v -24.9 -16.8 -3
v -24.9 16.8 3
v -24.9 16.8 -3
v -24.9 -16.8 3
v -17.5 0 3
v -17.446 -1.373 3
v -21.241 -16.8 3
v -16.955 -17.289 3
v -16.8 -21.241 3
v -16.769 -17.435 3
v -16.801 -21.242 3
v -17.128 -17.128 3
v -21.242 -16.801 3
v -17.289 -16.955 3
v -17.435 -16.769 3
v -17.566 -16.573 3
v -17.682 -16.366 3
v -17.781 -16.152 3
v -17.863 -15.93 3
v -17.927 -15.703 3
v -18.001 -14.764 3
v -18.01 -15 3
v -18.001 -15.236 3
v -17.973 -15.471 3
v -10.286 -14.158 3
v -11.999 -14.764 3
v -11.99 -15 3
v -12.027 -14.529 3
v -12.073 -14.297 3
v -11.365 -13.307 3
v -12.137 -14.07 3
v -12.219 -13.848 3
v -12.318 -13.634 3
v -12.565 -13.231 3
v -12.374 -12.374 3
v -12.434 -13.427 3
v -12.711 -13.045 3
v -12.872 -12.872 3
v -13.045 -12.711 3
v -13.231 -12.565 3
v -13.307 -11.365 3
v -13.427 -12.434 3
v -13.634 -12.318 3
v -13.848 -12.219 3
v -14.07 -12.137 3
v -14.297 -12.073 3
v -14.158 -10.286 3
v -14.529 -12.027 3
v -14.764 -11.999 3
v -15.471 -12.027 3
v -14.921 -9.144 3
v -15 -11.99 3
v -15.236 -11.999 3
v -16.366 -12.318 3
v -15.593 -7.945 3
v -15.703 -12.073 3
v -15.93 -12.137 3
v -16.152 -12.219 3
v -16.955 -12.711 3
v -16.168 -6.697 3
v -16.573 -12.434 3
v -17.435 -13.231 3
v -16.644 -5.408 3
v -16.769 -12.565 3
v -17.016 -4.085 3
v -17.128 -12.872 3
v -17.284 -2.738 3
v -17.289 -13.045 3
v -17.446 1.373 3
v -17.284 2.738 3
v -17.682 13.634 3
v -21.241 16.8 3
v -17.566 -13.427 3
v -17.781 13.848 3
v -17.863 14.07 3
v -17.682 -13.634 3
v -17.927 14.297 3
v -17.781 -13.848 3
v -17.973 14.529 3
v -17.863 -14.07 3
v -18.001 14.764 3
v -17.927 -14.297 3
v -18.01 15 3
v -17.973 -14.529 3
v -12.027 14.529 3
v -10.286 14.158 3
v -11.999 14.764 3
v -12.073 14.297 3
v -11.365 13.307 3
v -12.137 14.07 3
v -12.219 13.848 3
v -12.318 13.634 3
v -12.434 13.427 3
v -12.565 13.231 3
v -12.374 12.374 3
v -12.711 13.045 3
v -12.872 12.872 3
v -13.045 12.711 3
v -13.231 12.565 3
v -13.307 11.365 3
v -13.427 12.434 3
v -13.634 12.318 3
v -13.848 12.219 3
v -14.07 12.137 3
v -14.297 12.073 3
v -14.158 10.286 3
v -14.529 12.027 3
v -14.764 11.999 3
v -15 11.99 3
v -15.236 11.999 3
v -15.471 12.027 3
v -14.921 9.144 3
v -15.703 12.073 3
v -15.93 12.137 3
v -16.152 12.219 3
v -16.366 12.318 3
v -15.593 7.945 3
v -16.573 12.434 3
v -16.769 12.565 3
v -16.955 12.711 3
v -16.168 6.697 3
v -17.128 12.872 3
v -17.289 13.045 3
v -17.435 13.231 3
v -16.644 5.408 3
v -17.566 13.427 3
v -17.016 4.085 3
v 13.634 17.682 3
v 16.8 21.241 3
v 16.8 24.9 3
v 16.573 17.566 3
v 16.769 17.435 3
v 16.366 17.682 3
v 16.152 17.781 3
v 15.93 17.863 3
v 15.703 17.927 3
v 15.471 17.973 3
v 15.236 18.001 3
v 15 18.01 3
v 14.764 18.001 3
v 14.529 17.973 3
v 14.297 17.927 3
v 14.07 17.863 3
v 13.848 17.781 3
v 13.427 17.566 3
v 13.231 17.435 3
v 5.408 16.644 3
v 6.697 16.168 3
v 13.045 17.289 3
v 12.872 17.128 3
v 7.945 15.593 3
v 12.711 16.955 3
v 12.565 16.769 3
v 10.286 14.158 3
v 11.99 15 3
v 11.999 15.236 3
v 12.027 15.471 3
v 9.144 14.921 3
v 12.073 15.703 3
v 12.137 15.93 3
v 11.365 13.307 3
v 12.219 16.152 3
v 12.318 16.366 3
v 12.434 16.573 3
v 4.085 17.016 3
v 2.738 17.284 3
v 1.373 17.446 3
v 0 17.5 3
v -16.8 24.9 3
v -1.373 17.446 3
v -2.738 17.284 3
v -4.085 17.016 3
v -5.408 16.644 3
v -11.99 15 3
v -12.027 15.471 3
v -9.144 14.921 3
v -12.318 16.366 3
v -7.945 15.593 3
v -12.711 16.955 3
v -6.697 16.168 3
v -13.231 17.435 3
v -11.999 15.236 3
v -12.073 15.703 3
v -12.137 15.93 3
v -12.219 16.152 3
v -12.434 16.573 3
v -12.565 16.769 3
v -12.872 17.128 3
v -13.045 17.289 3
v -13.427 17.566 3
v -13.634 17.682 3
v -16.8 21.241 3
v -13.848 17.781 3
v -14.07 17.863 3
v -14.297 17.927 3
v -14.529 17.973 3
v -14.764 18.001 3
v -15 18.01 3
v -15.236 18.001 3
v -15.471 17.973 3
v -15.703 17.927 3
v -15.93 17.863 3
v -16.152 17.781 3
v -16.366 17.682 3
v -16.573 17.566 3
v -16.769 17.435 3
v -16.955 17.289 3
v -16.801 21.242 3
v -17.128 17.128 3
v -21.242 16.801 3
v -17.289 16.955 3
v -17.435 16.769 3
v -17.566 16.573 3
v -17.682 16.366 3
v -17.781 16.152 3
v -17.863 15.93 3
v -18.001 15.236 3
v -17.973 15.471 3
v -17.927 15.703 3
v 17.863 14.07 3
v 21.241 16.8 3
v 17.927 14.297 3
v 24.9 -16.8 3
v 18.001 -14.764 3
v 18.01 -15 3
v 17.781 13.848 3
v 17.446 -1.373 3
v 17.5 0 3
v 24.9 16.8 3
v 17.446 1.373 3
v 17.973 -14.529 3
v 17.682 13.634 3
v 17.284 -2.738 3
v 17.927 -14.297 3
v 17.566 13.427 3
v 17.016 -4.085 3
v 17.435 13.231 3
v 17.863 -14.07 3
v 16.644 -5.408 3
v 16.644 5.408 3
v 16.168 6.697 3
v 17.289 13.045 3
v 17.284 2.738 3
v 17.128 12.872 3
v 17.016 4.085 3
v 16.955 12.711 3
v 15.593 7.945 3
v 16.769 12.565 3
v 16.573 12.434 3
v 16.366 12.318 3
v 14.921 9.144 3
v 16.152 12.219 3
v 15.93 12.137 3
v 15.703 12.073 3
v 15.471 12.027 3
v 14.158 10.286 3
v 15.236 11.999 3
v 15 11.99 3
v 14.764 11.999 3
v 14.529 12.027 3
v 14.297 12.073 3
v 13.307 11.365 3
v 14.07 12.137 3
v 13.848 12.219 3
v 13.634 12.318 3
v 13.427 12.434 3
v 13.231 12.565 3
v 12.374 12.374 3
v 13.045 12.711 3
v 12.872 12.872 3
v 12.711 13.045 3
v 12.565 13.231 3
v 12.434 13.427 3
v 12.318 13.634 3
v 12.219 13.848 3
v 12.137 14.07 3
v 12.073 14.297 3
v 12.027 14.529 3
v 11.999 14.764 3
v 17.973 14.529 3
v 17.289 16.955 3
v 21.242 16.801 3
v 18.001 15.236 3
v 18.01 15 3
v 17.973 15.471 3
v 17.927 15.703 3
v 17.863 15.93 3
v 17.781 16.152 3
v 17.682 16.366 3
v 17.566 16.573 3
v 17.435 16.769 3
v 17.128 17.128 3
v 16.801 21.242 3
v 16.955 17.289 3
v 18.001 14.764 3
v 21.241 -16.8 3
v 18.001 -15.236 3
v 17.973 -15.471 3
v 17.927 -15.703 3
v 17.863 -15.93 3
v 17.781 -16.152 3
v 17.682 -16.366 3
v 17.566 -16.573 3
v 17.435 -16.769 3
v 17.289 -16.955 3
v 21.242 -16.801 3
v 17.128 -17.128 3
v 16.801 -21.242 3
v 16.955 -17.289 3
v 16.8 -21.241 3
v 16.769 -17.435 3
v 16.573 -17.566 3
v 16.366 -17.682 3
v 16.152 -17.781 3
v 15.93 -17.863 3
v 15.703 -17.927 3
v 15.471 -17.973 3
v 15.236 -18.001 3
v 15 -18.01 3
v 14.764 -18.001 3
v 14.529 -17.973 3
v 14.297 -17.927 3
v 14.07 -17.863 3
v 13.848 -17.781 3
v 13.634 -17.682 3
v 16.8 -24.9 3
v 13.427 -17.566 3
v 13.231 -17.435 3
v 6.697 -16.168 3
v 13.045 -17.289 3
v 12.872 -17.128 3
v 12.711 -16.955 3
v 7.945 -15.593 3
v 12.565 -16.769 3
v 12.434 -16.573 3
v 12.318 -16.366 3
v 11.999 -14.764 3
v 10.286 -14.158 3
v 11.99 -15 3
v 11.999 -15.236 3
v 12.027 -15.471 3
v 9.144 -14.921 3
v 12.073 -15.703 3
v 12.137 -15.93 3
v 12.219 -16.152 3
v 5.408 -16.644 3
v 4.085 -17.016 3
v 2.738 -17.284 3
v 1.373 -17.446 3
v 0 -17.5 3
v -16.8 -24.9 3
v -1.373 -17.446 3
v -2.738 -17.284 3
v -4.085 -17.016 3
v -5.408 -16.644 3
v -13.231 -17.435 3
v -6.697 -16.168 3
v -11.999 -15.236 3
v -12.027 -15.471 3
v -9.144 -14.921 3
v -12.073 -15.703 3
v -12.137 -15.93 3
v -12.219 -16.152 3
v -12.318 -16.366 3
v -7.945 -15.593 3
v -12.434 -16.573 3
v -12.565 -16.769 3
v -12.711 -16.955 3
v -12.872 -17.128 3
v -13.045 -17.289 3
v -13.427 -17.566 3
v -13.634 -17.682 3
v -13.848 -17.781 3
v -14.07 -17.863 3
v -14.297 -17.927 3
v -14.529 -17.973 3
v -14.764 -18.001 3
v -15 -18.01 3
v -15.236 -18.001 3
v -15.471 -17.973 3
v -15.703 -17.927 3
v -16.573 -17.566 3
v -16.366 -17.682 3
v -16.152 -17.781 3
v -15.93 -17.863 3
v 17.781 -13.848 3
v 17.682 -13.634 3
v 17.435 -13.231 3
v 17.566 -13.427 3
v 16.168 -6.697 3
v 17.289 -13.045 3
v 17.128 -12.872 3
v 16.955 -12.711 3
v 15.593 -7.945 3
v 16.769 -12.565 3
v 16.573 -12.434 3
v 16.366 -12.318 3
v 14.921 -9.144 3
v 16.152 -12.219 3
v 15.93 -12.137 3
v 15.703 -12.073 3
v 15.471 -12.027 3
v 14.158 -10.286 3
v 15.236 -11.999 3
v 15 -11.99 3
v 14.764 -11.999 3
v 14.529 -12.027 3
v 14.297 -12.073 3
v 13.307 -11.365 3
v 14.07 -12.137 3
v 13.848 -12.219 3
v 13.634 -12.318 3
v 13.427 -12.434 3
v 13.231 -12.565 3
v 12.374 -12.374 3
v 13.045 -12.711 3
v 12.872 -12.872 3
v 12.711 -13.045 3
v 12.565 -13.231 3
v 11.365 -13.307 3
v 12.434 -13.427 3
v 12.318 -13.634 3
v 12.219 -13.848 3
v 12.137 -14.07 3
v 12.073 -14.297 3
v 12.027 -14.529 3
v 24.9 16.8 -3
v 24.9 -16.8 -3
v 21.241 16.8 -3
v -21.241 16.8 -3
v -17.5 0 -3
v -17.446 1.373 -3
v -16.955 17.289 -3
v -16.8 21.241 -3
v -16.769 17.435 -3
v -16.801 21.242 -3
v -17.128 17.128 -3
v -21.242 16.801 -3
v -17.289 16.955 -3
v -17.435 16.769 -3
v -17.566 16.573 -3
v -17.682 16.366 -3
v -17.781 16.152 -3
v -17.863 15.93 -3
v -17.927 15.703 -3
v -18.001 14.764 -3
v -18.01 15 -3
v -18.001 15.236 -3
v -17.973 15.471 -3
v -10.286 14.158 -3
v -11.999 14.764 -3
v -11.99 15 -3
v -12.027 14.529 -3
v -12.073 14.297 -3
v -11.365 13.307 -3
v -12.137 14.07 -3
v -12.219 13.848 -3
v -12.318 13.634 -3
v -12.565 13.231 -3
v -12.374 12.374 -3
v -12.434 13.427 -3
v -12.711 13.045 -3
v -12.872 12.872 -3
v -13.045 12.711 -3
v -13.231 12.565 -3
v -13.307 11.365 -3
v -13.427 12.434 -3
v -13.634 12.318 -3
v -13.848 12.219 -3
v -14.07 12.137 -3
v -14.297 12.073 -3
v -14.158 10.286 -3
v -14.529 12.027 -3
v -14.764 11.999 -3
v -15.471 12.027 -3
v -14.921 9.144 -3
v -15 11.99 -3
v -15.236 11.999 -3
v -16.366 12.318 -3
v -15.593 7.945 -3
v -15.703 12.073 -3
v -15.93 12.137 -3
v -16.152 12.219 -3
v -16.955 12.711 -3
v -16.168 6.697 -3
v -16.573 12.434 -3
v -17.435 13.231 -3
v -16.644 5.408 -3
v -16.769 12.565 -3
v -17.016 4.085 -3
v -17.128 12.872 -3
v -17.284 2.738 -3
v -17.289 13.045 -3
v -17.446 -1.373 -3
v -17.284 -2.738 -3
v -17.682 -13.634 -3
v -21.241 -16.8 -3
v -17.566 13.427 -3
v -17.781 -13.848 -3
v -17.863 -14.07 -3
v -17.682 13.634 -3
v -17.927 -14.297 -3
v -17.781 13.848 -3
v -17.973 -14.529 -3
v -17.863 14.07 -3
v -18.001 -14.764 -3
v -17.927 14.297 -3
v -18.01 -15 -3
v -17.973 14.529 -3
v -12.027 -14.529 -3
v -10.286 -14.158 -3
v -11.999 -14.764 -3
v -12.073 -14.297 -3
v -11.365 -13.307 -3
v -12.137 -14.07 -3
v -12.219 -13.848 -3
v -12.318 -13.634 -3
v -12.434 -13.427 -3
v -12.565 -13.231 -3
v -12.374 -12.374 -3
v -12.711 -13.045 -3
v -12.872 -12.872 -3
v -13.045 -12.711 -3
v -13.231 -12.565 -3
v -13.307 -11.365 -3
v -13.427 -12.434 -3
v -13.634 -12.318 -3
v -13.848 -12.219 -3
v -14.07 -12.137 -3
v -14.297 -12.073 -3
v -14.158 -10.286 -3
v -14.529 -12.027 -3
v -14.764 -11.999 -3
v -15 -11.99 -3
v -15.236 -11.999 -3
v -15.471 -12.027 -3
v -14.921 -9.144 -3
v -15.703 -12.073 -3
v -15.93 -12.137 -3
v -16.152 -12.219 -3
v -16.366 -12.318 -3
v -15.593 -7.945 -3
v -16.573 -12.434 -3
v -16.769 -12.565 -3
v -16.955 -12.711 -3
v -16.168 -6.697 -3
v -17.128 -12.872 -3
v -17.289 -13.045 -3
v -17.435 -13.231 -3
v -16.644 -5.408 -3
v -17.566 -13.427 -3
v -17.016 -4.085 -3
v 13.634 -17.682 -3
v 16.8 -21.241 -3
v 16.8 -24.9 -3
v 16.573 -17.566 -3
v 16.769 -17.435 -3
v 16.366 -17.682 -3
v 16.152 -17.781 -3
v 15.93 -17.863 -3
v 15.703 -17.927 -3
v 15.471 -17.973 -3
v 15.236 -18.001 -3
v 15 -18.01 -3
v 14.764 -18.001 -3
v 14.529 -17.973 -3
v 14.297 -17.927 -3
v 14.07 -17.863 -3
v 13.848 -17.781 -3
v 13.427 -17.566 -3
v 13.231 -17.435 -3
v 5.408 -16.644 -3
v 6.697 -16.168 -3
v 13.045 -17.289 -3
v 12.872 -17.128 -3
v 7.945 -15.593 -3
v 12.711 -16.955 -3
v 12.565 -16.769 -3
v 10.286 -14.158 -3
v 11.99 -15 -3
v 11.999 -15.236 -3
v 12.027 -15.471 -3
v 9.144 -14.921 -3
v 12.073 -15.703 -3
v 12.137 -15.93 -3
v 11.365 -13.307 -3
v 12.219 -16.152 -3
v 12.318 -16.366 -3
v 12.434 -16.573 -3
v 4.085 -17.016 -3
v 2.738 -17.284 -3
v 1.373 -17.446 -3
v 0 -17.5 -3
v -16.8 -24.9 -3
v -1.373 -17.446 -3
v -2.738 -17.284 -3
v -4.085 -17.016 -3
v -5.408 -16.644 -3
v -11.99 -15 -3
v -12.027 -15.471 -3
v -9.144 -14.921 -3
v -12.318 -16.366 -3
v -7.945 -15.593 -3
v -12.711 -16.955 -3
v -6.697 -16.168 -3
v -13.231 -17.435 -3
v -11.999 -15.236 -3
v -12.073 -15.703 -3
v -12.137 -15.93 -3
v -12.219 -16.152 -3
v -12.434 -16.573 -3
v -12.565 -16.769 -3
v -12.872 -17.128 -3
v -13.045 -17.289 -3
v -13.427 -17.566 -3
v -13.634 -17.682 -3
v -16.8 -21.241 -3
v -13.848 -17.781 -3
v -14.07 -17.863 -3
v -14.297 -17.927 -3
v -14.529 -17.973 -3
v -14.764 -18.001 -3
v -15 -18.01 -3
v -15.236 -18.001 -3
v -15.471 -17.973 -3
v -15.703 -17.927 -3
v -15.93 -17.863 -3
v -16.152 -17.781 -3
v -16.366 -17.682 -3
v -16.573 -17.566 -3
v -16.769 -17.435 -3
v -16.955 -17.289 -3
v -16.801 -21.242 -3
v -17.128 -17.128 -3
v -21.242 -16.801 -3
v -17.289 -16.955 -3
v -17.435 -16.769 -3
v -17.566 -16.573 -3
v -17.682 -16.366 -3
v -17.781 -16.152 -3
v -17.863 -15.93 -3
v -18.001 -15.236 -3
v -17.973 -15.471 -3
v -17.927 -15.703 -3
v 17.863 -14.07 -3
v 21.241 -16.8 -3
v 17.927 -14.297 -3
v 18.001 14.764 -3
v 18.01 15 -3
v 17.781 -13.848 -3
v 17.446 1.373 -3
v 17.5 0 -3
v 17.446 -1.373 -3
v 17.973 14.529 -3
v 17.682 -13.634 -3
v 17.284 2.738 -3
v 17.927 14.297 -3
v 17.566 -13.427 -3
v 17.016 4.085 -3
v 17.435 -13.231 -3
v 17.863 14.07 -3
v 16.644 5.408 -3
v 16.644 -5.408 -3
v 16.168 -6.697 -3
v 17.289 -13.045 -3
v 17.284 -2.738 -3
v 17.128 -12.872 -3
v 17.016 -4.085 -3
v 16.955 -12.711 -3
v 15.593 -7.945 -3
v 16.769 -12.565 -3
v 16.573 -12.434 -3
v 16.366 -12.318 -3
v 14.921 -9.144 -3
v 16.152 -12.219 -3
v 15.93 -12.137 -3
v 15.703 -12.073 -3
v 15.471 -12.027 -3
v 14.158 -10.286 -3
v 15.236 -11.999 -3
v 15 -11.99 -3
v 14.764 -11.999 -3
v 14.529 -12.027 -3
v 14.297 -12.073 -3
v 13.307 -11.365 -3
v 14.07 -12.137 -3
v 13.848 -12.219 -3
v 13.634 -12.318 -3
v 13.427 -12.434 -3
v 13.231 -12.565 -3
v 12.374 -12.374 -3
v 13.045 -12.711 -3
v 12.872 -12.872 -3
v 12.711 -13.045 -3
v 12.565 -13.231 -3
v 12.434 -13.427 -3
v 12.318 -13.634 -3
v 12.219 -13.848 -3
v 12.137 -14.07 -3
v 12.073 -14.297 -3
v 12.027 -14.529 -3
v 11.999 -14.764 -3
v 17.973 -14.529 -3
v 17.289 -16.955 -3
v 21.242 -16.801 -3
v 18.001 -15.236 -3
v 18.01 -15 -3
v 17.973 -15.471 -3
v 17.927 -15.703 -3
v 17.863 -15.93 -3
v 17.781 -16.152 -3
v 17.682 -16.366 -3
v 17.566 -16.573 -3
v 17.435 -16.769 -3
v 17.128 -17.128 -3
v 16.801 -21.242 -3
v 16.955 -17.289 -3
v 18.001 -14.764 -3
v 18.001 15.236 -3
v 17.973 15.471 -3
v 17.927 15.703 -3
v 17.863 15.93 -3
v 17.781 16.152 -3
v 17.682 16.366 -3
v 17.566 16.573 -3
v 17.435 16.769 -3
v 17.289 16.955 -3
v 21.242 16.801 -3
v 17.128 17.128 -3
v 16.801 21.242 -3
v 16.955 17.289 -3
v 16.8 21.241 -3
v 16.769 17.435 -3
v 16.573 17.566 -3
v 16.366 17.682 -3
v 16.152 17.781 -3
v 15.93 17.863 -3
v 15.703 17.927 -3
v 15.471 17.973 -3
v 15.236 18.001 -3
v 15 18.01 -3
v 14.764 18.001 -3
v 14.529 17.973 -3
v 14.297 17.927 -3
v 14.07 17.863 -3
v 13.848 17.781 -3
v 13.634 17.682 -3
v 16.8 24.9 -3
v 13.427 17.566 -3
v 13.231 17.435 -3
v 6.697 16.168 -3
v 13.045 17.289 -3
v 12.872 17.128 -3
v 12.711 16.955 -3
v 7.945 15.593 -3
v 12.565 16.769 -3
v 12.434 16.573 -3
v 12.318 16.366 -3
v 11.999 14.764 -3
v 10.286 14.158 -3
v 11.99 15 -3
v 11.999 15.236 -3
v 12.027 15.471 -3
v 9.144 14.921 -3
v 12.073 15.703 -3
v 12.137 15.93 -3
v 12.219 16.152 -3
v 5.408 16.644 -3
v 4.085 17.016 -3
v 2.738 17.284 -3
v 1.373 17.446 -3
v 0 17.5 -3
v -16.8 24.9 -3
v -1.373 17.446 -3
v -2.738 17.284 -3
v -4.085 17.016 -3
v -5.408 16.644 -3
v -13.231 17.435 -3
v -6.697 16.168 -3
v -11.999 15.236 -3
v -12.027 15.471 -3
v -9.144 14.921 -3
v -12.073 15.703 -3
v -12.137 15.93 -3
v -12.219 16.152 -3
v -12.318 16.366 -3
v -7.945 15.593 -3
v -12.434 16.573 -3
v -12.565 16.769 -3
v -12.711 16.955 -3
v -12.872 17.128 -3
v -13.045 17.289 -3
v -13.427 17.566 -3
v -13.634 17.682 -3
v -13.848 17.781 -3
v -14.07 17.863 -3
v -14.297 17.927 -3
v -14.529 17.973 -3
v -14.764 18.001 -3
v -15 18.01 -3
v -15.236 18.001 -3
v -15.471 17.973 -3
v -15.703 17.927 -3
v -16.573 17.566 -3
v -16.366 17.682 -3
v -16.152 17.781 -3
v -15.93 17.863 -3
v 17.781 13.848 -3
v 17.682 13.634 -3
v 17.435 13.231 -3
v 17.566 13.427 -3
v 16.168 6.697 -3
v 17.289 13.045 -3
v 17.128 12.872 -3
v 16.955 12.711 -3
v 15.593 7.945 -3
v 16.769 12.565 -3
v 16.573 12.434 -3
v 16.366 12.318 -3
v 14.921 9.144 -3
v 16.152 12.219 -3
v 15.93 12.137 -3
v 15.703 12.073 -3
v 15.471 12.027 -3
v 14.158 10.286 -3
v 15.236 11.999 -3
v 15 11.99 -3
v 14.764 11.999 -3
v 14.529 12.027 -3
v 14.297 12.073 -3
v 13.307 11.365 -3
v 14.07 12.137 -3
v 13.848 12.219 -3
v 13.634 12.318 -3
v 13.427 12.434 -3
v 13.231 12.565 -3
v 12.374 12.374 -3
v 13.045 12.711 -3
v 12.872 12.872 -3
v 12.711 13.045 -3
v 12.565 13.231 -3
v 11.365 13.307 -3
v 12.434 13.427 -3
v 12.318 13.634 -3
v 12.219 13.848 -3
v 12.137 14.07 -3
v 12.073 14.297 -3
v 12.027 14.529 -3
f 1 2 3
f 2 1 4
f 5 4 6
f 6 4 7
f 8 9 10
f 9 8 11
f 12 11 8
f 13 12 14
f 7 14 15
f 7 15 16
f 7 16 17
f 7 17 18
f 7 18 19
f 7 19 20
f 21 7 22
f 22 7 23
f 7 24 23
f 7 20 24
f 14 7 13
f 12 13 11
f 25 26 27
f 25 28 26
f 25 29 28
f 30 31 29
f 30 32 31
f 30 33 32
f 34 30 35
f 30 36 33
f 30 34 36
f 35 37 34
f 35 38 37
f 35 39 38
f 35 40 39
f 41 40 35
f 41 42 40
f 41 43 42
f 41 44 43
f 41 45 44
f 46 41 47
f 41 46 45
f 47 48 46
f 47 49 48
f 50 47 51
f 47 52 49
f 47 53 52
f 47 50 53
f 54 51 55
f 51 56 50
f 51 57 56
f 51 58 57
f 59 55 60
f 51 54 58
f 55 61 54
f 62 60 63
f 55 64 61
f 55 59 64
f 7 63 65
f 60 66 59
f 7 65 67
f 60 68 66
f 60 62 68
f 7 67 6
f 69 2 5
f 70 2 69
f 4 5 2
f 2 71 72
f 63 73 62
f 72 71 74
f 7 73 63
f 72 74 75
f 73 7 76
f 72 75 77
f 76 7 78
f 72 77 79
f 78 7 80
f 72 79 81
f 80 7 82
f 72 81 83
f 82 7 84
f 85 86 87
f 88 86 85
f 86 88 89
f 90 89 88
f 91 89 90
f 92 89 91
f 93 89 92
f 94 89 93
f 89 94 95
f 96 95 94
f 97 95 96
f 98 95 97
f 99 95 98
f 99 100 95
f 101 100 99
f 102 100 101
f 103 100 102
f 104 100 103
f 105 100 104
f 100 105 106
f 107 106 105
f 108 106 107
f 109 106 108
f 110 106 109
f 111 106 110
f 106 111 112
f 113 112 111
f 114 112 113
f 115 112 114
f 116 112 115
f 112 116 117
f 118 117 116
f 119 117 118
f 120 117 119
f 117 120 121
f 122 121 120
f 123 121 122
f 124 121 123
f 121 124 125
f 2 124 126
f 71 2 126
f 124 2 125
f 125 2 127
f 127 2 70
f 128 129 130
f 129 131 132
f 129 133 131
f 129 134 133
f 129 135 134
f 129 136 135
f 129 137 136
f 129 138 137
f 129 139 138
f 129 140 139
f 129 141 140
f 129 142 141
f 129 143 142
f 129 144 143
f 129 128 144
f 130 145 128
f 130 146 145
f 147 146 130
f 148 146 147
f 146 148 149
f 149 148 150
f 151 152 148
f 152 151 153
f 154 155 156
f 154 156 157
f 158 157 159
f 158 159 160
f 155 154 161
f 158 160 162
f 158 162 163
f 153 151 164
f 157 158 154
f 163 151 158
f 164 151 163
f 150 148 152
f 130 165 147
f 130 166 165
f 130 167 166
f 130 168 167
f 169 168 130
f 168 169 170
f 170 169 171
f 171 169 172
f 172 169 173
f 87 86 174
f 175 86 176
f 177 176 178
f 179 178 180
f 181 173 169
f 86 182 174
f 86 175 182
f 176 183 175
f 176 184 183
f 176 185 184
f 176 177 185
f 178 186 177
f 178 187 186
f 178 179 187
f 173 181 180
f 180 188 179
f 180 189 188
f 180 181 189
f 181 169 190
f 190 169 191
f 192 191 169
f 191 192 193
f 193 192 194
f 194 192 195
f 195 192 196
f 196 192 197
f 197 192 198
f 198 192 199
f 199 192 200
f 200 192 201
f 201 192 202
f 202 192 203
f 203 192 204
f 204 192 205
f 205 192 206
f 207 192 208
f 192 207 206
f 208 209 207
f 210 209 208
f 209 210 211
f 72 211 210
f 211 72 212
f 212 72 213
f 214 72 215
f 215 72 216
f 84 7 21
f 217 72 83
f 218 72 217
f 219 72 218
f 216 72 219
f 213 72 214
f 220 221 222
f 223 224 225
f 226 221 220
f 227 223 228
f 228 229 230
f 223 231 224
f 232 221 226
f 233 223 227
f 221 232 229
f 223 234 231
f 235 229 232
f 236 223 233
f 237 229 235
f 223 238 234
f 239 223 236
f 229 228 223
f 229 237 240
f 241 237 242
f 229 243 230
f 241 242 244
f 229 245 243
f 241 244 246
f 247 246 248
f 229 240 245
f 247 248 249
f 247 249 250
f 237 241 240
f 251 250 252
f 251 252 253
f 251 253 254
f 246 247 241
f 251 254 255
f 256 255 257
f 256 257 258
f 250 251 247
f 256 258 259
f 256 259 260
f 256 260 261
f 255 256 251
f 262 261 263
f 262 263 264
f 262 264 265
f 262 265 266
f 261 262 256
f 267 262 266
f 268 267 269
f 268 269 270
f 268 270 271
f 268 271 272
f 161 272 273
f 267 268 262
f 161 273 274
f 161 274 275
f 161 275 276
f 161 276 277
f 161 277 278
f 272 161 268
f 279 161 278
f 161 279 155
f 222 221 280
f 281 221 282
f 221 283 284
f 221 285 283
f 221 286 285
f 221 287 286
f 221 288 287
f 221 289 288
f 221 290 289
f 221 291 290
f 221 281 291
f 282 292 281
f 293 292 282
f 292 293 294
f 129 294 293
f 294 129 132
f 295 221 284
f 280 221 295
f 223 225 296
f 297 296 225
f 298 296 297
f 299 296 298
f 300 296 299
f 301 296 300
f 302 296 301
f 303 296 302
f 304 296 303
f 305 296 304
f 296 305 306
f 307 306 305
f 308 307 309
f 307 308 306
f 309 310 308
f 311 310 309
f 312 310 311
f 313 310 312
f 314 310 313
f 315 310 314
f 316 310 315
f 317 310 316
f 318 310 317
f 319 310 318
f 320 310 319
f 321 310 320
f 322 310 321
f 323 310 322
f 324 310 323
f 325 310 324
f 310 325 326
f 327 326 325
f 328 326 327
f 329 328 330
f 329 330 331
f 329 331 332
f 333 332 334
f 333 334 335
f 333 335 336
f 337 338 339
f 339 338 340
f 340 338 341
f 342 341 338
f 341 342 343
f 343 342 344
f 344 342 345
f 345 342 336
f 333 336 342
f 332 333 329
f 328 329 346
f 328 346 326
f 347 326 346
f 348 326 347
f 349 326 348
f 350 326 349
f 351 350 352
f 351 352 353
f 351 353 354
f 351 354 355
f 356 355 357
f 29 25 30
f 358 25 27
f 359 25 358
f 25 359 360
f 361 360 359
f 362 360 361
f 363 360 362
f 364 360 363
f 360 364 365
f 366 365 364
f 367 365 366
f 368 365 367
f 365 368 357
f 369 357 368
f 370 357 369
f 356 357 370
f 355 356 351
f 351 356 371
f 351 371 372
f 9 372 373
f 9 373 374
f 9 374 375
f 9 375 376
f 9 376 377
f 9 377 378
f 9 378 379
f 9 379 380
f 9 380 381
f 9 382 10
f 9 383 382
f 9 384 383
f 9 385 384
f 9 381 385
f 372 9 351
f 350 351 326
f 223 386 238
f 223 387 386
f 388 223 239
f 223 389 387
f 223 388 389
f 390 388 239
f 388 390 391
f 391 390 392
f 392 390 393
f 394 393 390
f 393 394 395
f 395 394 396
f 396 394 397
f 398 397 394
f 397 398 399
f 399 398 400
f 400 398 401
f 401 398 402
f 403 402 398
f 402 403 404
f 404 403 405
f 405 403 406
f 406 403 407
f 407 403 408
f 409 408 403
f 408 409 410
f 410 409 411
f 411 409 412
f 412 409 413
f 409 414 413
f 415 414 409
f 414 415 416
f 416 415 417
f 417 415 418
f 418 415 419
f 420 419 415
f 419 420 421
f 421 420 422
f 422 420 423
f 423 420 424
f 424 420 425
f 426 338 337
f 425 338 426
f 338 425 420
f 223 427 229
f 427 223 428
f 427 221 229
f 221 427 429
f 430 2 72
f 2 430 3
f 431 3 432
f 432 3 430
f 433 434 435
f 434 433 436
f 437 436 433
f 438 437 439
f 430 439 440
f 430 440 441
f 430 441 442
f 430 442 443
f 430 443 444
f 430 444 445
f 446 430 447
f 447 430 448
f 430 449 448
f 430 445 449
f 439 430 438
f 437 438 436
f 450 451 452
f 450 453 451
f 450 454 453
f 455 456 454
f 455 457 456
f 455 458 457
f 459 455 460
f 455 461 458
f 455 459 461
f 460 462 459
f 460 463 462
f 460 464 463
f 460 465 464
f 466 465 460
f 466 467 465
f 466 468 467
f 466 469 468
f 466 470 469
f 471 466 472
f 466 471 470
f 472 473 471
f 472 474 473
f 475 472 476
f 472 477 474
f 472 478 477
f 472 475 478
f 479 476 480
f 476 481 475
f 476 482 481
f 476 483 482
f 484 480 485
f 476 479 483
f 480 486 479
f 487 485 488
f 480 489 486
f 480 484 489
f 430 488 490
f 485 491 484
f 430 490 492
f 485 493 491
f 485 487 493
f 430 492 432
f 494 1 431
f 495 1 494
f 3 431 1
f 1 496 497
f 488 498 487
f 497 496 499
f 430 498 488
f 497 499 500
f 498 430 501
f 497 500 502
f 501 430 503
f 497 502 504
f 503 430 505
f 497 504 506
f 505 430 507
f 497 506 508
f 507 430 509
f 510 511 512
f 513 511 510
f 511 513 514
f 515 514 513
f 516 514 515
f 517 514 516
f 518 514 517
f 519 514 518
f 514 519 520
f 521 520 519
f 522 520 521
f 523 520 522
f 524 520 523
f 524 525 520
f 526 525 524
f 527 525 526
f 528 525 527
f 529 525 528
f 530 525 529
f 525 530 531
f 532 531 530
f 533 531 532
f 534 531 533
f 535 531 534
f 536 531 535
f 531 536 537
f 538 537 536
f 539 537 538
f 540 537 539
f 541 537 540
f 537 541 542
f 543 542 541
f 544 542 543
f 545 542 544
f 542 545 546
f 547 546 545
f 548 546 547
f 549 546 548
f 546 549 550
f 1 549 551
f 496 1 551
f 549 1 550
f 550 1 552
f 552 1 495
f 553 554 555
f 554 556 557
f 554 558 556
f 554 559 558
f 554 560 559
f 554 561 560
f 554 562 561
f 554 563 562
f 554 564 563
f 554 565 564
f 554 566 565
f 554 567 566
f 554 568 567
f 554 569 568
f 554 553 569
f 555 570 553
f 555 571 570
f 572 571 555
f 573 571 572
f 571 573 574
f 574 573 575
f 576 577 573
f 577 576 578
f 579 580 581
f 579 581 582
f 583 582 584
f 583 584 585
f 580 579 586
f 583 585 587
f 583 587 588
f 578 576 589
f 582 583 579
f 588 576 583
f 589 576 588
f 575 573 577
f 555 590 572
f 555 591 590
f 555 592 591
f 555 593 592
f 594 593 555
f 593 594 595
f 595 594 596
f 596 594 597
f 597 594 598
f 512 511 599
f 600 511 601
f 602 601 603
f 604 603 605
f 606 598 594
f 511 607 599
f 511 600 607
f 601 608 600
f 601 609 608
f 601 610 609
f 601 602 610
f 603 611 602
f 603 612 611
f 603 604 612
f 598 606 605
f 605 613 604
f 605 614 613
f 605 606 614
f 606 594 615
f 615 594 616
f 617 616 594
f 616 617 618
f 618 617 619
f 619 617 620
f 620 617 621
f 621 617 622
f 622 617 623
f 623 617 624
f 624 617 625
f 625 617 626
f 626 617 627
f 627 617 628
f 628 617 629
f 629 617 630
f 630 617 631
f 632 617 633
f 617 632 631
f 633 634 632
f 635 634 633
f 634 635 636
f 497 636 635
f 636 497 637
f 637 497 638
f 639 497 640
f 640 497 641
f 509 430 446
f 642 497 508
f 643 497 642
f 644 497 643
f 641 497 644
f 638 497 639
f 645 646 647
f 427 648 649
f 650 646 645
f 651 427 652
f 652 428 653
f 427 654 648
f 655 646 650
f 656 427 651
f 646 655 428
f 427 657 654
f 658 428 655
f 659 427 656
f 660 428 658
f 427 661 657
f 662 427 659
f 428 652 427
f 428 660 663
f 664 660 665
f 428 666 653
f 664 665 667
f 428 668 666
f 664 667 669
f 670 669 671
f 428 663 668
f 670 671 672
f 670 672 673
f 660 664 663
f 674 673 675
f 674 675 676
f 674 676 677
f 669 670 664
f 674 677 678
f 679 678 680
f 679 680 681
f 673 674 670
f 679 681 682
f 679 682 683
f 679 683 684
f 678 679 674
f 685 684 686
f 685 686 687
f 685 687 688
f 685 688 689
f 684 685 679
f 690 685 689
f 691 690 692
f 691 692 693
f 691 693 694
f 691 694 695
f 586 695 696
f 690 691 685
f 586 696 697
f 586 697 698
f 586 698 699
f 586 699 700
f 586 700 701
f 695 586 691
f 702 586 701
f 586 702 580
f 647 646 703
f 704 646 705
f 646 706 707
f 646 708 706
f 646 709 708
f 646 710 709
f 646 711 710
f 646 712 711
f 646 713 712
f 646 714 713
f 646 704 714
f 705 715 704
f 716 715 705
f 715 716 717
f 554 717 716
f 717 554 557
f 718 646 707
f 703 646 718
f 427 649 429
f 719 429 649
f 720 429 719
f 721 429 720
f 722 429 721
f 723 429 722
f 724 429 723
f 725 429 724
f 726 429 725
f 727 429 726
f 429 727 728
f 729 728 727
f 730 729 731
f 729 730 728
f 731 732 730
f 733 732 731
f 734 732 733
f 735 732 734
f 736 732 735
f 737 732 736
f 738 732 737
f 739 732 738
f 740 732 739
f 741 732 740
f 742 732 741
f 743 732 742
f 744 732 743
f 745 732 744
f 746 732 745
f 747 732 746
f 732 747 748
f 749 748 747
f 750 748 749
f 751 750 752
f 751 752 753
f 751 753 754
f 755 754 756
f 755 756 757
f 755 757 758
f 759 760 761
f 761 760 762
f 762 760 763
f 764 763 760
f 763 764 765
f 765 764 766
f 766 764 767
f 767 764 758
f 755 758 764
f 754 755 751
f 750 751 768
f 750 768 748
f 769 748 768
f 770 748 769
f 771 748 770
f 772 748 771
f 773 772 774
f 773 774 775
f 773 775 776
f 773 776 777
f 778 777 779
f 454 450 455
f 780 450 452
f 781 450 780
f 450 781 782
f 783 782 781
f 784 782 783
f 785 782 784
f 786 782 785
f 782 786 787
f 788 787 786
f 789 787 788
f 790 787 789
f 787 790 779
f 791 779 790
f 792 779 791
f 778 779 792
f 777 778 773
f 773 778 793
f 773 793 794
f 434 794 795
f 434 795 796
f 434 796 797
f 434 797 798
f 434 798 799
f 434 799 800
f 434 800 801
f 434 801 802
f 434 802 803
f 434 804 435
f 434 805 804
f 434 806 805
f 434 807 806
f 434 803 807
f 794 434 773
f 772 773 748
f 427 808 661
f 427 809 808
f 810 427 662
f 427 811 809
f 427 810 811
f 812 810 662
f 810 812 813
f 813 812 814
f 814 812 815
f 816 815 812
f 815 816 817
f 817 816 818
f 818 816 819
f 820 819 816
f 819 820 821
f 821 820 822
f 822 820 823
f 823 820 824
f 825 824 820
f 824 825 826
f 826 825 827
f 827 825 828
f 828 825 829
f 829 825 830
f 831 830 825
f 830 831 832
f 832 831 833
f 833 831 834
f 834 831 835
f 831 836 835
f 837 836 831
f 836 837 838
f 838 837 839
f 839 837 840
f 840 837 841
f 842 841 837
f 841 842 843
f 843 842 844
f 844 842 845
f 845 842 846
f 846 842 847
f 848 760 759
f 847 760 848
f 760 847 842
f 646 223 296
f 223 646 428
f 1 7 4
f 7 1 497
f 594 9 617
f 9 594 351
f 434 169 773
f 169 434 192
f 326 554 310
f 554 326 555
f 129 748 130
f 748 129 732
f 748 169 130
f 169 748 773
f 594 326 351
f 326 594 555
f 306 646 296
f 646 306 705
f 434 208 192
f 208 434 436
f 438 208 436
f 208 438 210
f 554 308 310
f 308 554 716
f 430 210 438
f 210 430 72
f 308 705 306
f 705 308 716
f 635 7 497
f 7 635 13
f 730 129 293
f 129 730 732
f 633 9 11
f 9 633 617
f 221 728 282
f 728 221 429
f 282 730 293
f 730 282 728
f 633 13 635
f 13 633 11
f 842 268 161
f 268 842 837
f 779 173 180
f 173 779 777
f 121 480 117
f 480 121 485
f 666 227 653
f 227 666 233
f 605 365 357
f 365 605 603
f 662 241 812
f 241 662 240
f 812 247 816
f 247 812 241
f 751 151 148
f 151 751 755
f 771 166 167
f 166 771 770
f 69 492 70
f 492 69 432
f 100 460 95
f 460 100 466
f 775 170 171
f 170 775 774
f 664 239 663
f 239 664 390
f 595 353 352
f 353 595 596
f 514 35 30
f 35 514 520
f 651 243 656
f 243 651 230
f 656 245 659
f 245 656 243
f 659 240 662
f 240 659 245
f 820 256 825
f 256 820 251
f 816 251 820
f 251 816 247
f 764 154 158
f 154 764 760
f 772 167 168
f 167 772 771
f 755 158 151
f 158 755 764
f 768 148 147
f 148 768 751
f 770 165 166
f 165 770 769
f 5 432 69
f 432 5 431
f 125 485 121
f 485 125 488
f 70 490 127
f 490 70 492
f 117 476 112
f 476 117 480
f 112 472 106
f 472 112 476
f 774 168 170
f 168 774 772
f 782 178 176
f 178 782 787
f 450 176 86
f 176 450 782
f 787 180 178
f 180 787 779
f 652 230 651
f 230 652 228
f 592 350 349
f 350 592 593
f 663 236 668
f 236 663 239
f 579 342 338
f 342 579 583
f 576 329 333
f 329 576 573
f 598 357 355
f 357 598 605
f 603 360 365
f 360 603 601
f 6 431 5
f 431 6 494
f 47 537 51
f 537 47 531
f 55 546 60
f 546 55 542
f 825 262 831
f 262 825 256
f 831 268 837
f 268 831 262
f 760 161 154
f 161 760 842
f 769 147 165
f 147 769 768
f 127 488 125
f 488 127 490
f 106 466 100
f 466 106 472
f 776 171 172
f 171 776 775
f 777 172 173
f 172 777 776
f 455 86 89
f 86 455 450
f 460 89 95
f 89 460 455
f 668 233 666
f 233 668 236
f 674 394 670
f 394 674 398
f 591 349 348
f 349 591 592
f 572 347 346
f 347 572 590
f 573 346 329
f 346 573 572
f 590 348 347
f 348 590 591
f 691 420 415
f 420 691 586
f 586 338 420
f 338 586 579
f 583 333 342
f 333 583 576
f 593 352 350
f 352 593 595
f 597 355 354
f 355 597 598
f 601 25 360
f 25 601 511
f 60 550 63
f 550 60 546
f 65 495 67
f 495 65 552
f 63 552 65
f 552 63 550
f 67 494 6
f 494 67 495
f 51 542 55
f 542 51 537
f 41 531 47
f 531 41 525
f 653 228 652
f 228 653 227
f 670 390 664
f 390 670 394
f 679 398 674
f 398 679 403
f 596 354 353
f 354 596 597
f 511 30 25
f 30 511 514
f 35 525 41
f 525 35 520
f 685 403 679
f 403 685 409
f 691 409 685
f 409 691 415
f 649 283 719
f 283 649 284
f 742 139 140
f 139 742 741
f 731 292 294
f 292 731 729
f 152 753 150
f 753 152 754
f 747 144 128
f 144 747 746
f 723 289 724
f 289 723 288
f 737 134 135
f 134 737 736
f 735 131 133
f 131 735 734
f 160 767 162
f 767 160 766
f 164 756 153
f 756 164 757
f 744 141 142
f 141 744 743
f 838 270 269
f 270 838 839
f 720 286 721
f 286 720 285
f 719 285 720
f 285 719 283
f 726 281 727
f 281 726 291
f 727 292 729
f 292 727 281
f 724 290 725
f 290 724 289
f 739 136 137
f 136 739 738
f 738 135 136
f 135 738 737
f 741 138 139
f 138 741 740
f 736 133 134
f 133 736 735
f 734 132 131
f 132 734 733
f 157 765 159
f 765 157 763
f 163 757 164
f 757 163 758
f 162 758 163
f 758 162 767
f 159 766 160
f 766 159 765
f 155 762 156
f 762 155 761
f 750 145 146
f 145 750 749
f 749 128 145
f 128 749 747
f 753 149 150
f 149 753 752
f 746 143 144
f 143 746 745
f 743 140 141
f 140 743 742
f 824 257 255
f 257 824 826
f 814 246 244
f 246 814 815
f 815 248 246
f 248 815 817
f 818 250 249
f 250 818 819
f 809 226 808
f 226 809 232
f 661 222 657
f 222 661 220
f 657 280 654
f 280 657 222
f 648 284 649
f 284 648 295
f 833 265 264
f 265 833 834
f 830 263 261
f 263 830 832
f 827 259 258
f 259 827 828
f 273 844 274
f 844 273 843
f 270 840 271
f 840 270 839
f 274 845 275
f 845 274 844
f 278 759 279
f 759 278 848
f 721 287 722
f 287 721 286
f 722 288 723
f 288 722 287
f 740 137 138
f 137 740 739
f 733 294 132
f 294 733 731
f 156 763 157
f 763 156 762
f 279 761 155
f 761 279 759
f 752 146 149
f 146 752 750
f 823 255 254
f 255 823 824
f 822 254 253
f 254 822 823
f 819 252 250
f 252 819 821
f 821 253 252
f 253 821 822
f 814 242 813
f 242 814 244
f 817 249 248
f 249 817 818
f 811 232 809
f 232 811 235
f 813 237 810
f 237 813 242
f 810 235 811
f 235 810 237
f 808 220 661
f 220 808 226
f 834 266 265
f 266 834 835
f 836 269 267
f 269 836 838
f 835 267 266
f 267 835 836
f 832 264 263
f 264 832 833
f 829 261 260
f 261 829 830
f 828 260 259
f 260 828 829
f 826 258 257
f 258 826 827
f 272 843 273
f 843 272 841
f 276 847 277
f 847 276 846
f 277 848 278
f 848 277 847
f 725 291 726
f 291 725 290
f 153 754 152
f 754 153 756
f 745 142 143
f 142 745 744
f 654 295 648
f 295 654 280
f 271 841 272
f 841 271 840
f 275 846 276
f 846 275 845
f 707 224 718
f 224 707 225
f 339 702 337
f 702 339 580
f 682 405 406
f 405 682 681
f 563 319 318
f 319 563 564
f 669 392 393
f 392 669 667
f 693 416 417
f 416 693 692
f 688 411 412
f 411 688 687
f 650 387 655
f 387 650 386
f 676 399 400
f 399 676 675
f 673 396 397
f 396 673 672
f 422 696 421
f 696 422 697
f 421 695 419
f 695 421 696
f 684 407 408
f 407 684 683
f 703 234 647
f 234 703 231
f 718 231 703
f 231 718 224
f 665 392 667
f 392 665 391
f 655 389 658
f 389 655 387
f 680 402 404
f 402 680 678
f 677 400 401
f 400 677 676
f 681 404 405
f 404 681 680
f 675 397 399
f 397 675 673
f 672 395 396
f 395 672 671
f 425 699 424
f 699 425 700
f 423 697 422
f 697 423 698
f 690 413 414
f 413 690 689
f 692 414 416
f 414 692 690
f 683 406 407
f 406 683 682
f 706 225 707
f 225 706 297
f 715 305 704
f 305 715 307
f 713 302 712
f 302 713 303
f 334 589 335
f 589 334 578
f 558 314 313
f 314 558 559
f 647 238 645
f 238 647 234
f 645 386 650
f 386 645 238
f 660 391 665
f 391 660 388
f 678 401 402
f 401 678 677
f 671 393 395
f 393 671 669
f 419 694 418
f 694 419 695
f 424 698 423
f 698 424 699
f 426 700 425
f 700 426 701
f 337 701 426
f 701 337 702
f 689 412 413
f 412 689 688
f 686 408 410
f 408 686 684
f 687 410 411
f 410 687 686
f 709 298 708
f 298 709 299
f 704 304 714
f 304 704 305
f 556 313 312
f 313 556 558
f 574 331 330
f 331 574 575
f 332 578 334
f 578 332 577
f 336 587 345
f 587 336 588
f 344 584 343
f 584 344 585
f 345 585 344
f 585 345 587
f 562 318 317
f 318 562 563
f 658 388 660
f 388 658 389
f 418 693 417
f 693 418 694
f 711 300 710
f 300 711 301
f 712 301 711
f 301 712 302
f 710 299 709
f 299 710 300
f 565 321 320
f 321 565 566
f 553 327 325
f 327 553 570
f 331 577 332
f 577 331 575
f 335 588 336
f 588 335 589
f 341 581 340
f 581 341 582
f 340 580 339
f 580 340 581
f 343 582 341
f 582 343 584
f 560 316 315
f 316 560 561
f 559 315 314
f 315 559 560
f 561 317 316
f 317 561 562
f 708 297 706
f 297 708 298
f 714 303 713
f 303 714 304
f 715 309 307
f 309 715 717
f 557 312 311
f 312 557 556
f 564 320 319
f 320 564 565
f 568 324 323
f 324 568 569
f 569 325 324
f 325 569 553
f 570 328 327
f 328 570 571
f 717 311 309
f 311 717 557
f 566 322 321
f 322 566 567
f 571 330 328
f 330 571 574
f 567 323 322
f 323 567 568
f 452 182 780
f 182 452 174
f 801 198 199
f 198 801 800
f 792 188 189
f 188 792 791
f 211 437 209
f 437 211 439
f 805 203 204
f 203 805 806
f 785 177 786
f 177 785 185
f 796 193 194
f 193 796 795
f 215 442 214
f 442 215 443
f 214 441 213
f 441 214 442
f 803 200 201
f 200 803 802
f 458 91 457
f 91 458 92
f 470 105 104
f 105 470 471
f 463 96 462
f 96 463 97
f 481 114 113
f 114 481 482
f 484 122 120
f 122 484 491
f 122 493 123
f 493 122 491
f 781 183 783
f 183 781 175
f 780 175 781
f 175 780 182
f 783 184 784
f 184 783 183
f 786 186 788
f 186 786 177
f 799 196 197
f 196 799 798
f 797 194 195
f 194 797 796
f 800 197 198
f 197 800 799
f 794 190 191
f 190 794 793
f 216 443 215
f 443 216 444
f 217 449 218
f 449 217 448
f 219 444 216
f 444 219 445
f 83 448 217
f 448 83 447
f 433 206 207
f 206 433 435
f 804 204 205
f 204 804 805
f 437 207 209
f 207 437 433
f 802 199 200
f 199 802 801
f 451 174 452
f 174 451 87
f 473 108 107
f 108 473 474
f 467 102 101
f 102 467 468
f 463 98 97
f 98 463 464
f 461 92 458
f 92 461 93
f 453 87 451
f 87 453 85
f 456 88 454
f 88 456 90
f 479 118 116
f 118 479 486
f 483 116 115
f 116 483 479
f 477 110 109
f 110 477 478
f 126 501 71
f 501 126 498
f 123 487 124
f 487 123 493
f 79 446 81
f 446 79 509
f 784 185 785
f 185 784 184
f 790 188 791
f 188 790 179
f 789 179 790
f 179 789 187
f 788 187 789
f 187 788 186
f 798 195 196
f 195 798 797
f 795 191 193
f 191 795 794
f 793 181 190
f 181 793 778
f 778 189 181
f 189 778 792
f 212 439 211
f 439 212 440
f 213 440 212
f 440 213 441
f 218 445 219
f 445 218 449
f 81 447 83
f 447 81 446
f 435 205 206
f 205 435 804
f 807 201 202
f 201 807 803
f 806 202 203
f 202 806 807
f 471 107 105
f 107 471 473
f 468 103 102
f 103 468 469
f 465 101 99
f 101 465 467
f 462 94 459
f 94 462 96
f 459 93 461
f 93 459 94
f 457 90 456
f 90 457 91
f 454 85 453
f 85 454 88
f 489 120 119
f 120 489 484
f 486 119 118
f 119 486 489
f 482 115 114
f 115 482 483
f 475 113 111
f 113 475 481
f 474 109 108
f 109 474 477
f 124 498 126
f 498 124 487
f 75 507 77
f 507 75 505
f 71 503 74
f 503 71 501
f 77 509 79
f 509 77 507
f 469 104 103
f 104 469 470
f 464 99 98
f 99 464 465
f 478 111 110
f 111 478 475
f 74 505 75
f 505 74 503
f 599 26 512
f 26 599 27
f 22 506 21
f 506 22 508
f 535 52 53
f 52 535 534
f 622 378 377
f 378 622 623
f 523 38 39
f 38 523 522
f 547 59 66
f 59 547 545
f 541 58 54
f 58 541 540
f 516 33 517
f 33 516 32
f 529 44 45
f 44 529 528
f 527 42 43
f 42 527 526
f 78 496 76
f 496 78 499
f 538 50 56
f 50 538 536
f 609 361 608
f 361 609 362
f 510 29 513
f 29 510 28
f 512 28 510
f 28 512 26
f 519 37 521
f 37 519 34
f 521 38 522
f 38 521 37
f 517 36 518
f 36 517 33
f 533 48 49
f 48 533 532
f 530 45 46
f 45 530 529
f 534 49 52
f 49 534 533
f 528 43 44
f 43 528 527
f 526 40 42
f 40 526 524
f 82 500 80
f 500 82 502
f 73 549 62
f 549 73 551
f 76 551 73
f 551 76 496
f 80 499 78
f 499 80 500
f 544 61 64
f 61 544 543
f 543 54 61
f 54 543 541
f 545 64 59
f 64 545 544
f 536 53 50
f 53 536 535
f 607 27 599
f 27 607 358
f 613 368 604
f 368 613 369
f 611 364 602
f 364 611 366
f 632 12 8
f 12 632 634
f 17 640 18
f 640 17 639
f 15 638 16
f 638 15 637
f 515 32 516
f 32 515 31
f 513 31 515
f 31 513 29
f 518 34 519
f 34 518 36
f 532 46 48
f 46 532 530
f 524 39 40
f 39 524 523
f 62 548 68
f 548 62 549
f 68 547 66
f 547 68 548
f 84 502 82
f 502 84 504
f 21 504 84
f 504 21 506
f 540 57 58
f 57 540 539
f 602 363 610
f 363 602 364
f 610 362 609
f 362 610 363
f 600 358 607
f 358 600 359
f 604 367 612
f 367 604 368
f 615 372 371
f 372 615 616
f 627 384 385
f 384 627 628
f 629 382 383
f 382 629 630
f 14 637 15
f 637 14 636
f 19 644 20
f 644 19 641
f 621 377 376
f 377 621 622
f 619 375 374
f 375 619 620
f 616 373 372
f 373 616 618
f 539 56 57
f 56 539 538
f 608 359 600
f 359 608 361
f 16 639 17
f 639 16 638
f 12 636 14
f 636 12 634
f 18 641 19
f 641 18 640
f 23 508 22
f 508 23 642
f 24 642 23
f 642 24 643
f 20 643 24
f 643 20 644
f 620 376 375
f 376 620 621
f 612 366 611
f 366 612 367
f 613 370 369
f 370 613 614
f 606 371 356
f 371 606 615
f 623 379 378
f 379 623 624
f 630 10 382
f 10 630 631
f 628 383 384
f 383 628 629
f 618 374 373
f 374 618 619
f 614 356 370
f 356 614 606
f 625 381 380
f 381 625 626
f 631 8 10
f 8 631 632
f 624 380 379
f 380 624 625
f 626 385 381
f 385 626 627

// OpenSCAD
//Cube Insert: Thorlabs Cage System Rods 

/* [User Parameters] */
//If the holes of this insert are too loose or too tight for the Thorlabs rods, adjust their diameter by changing the offset (in millimetres)
off_dr = 0; //[-1:0.1:1]

/* [Hiden] */
//basic insert design
$fn = 80;
eps = .002;
a = 49.8;
b = 33.6;
c = 6.28;
d = 53.8;
h = 6;
//specific for this insert
dh = 35; //center hole diameter
dr = 6.02; //rod hole diameter
rp = 15; //rod pitch - half

insert_thorlabs();

module insert_thorlabs(){
    difference(){
        difference(){
            insert();
            cylinder(d = dh,h = h+eps,center = true);
        }
        translate([rp,rp,0]) cylinder(d = dr+off_dr,h = h+eps,center = true);
        translate([rp,-rp,0]) cylinder(d = dr+off_dr,h = h+eps,center = true);
        translate([-rp,rp,0]) cylinder(d = dr+off_dr,h = h+eps,center = true);
        translate([-rp,-rp,0]) cylinder(d = dr+off_dr,h = h+eps,center = true);
    }
}

module insert() {
    union() {   //basic insert design
            cube([a,b,h], center=true);
            cube([b,a,h], center=true);
            rotate(a=[0,0,45]){
                cube([c,d,h], center=true);
            }
            rotate(a=[0,0,-45]){
                cube([c,d,h], center=true);
            }
        }
}
